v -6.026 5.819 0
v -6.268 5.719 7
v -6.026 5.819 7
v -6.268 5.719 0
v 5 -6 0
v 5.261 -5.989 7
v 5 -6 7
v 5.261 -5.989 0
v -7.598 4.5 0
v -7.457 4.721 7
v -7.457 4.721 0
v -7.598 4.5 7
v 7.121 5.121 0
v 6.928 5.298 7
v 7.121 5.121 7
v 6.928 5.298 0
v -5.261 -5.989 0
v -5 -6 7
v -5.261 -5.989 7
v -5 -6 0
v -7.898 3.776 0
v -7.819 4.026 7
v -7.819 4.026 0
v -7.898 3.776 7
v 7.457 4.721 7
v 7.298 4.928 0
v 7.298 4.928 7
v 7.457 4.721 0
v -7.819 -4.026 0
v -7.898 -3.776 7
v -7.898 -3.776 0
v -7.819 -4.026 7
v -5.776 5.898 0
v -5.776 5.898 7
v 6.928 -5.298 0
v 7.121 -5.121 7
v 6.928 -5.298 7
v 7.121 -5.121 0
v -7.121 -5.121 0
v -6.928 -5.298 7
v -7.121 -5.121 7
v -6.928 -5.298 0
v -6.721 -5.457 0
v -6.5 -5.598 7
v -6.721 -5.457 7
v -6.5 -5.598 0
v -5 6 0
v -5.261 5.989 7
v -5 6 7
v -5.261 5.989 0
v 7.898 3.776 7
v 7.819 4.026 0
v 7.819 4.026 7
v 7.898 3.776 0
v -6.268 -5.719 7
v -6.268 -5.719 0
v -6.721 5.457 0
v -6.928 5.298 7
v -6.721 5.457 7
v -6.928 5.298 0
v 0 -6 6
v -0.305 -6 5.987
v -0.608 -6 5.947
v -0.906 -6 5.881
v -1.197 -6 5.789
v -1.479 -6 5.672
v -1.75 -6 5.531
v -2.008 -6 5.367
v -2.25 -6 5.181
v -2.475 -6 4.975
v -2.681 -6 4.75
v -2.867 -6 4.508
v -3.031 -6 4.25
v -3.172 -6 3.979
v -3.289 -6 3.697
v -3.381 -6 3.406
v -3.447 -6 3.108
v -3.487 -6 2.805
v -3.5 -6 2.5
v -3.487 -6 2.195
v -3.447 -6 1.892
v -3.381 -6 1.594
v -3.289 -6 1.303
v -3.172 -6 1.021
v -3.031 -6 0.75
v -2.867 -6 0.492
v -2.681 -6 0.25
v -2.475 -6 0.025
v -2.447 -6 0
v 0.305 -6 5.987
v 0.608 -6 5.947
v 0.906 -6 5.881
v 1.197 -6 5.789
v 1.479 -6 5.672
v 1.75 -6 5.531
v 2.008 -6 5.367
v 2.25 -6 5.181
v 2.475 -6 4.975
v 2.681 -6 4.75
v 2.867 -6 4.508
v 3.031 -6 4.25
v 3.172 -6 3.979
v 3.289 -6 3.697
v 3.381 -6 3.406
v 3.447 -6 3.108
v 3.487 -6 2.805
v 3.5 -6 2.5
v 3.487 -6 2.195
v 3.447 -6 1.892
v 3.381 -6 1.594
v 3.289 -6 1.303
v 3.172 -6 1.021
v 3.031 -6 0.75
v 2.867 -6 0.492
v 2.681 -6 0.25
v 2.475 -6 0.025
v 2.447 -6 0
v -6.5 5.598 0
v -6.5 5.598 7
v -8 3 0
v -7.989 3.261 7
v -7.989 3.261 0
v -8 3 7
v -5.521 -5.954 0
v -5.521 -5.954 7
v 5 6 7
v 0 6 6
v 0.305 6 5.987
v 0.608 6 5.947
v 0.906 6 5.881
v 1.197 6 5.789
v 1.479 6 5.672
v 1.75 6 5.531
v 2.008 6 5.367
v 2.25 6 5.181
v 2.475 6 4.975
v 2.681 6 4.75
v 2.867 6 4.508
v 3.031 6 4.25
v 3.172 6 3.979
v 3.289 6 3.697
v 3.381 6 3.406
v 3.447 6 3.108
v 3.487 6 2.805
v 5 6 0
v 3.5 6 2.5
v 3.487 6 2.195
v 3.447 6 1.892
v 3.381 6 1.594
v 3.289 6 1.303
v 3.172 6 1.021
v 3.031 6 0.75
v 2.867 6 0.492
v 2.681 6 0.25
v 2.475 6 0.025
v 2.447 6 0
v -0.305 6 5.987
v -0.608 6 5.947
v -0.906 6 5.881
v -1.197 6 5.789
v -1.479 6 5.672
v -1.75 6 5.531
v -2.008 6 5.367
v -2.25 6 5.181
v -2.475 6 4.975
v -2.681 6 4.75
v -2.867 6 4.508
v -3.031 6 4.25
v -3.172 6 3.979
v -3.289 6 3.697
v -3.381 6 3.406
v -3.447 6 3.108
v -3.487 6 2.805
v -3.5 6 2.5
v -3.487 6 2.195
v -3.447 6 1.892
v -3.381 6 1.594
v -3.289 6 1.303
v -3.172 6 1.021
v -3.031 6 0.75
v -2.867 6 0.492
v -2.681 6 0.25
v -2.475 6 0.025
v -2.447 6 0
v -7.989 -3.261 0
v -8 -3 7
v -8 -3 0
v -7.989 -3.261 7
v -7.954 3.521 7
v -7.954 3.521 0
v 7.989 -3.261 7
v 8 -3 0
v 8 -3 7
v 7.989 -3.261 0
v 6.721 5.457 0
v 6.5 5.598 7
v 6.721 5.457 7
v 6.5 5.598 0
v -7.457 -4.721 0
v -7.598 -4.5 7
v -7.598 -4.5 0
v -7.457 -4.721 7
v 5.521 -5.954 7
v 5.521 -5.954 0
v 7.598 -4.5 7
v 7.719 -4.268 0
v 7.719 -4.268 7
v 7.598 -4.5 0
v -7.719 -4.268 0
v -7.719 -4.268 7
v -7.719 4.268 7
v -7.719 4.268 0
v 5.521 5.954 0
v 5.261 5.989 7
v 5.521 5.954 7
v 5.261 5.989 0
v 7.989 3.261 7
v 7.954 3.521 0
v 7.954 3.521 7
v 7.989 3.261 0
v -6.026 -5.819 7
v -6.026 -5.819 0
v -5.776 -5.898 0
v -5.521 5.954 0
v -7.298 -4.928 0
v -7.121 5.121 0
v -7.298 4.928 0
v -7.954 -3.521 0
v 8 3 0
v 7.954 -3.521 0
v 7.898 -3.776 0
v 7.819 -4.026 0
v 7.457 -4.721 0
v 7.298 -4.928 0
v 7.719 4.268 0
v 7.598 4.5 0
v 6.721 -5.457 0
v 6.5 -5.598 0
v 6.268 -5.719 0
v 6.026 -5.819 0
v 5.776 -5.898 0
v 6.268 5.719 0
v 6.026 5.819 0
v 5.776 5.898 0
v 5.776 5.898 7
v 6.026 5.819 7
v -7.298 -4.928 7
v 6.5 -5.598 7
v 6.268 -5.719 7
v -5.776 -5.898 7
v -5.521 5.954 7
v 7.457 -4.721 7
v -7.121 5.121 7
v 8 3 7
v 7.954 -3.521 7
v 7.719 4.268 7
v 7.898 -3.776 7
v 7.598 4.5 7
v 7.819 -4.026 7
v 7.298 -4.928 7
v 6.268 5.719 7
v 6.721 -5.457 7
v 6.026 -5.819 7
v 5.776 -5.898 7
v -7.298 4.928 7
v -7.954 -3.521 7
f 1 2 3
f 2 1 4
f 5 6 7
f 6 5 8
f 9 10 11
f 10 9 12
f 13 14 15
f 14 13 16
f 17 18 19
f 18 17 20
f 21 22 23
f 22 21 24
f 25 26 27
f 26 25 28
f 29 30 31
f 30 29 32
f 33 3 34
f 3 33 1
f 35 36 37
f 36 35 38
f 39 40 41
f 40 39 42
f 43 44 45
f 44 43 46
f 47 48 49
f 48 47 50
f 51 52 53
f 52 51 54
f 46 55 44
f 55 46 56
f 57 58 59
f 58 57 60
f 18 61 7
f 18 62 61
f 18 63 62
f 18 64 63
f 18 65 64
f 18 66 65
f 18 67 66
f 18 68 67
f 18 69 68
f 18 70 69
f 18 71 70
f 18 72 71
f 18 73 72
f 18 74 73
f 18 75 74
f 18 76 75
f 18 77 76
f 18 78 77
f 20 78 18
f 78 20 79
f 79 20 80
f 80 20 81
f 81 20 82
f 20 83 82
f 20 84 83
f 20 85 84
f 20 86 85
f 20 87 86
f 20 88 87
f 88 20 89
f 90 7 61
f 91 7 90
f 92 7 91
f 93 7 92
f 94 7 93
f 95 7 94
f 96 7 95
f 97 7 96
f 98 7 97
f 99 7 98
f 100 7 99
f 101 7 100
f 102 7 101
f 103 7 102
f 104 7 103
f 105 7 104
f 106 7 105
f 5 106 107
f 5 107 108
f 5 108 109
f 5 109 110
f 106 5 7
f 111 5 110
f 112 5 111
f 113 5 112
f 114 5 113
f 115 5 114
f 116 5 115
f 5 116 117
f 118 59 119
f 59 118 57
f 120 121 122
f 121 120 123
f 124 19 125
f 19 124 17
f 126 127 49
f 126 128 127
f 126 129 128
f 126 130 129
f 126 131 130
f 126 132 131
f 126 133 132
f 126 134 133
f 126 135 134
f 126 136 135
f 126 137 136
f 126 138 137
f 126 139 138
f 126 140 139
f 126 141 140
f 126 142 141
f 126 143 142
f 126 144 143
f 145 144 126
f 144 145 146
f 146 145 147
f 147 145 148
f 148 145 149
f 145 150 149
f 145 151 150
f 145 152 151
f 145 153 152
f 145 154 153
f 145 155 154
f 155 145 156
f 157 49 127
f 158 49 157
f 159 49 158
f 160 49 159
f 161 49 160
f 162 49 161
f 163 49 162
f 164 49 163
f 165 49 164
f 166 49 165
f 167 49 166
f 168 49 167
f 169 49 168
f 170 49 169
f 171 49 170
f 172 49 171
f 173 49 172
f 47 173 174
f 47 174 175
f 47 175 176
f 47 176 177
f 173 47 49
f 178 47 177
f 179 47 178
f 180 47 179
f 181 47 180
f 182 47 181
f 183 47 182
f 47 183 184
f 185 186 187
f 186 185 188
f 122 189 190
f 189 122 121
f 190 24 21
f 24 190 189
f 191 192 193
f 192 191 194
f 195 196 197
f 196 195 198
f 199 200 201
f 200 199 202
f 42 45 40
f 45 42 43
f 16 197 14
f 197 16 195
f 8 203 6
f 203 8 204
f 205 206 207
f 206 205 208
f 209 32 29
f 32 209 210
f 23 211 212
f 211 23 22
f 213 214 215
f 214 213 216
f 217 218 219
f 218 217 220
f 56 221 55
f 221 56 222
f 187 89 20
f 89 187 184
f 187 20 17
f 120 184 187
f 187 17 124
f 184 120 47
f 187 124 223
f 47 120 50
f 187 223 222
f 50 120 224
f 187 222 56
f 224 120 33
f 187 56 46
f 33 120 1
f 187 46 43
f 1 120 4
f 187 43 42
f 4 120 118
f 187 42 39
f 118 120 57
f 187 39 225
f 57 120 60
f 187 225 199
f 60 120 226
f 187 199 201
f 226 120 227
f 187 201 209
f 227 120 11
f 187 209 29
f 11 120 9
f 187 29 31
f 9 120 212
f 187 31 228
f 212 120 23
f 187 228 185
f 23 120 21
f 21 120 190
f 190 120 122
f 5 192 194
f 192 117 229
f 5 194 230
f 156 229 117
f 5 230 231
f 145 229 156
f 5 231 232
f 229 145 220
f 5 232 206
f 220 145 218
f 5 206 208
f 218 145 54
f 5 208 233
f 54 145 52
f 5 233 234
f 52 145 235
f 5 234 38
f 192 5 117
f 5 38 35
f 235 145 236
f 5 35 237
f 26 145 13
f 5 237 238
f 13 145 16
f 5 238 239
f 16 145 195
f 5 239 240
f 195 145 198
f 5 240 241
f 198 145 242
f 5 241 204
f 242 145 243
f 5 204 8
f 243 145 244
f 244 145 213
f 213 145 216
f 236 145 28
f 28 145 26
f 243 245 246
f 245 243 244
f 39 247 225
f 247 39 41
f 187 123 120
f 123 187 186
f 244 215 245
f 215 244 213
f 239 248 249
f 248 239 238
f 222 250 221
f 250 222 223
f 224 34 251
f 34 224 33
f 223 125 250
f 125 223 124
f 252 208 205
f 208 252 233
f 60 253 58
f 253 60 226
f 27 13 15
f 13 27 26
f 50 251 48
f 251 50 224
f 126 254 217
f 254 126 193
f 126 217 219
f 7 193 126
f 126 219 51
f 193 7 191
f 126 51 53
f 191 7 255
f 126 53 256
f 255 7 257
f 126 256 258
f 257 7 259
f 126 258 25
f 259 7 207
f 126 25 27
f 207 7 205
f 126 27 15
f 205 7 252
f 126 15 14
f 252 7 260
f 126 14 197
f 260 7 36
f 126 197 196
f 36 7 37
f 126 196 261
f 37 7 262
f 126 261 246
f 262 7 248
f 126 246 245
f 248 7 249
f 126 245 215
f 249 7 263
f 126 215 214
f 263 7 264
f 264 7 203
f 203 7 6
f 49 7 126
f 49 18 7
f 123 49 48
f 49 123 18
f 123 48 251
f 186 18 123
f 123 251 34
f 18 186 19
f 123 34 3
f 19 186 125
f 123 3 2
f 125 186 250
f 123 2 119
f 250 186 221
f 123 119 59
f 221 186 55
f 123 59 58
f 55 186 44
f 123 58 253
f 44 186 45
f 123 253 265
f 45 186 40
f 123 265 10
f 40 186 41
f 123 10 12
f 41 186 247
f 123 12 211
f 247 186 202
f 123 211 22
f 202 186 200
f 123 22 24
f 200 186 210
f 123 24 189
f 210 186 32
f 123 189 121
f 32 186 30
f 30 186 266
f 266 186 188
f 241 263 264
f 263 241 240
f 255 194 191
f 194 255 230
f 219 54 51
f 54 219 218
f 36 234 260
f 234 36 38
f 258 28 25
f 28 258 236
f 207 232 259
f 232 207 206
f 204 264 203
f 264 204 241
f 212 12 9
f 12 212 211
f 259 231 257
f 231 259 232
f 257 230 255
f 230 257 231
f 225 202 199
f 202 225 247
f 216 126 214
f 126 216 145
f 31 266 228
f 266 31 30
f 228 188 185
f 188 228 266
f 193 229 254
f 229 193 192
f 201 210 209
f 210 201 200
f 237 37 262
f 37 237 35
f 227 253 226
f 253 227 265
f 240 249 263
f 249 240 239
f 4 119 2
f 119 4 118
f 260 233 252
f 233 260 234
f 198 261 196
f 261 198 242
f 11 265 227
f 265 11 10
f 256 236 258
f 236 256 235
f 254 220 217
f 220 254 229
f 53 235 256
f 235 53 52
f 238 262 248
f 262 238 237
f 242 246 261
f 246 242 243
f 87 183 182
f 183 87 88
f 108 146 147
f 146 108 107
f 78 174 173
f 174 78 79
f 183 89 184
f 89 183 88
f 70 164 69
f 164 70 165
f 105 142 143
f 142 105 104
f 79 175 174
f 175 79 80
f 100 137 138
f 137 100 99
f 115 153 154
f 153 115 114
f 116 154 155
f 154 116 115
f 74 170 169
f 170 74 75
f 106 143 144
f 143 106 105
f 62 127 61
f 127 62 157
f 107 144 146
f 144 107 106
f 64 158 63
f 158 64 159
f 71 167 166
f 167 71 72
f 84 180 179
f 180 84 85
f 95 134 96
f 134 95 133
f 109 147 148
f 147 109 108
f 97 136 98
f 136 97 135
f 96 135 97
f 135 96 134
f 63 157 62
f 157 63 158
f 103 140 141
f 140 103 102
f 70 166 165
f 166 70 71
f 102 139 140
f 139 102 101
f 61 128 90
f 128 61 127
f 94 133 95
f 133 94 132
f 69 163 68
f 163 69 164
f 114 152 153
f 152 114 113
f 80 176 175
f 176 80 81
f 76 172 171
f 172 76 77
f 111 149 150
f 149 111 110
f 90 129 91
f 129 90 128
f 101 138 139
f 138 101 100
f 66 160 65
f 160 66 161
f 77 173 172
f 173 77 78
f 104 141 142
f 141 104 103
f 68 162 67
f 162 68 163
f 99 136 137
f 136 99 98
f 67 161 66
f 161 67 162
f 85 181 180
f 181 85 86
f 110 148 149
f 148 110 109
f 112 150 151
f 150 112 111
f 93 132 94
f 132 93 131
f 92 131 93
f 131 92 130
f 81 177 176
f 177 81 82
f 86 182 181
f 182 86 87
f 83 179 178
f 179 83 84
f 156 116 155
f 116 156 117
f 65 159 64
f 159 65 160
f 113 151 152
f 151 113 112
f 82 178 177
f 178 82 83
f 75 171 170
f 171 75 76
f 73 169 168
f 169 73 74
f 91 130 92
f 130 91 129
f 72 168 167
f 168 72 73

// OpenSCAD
// file: woli_config.scad
// ============================================================
// WOLI V1.1 AUDITED FINAL — MASTER PARAMETERS
// Units: mm
// ============================================================

$fn = 72;

// ---------- GLOBAL ----------
fit_clearance = 0.40;
wall = 3.0;
floor_t = 5.0;
cover_t = 2.8;
shell_r = 10.0;

m3_clear = 3.4;
m3_pilot_d = 2.8;
m3_pilot_depth = 4.2;

tie_slot_w = 3.8;
tie_slot_l = 18;

// ---------- BODY ----------
body_w = 170;
body_l = 90;
chassis_h = 31;
top_h = 34;

top_upper_w = 162;
top_upper_l = 80;
top_upper_r = 9;

// ---------- N20 DRIVE ----------
wheel_d = 43;
wheel_w = 17.5;

n20_x = 12;
n20_y = 33;
n20_z = 10;

n20_bracket_x = 25;
n20_bracket_y = 8.5;
n20_bracket_z = 11.5;
n20_bracket_hole_cc = 17;      // approx; slots absorb error

wheel_axis_ground_z = wheel_d/2; // reference only; actual chassis ground plane requires hardware check
wheel_opening_l = 25;            // side wheel cutout depth (Y), mm
motor_y = -body_l/2 + body_l/3;  // wheel center: 1/3 body depth in from front (-Y)
motor_slot_len = 8;
motor_bracket_zone_x = body_w/2 - 18;

// ---------- BALL CASTER ----------
caster_w = 22;
caster_l = 17;
caster_h = 15;
caster_ball_d_visual_ref = 11.5; // photo-only reference; not used for fit
caster_dock_y = body_l/2 - 21;

caster_body_clear = 0.7;
caster_retainer_t = 3.0;
caster_retainer_screw_cc = 27;

caster_mount_x = 15;
caster_mount_y = 12;
caster_floor_open = 18.5;

// ---------- MAIN PCB ----------
pcb_w = 50;
pcb_l = 70;
pcb_stack_h = 15;

pcb_tray_w = 56;
pcb_tray_l = 76;
pcb_mount_cc_x = 44;
pcb_mount_cc_y = 64;

// ---------- MG90S ----------
servo_a = 32.4;
servo_b = 32.5;
servo_c = 12;
servo_fit = 0.7;

// ---------- LIMIT SWITCH ----------
limit_w = 21;
limit_l = 23;
limit_h = 6;

// ---------- VL53L0X ----------
tof_w = 10.7;
tof_l = 25;
tof_h = 11.5;
tof_rail_clear = 0.7;

tof_bezel_w = 34;
tof_bezel_h = 19;

// ---------- PHONE HOLDER / NECK ----------
phone_ball_d = 18.0;            // physical socket fit still required
neck_h = 30;
neck_base_w = 54;
neck_base_l = 42;
neck_base_h = 5;
neck_hole_x = 38;
neck_hole_y = 26;

neck_recess_w = 62;
neck_recess_l = 50;
neck_recess_d = 1.2;

neck_pilot_d = 2.8;
neck_pilot_depth = 7.0;

// reference phone clearance envelope only
phone_ref_w = 165;
phone_ref_h = 82;
phone_ref_t = 12;

// ---------- KLIFE PD-Q2 BATTERY ----------
battery_w = 68;
battery_l = 143;
battery_h = 11;
battery_mass_g = 205;

battery_fit_clear = 0.8;
battery_tray_w = 84;
battery_tray_l = 146;
battery_tray_t = 2.4;
battery_rail_t = 2.5;
battery_rail_h = 5.5;
battery_center_y = -18;

battery_tray_mount_x = 39;
battery_tray_mount_y = 55;

// ---------- UPPER ELECTRONICS DECK ----------
bridge_w = 122;
bridge_l = 94;
bridge_t = 3.0;
bridge_leg_h = 20;
bridge_leg_x = 56;
bridge_leg_y = 36;

module_boss_h = 4.5;
module_boss_d = 8.0;
module_pilot_d = 2.8;

pcb_deck_cx = -25;
pcb_deck_cy = 0;

tb_deck_cx = 34;
tb_deck_cy = 17;

usbc_deck_cx = 36;
usbc_deck_cy = -24;

// ---------- TB6612FNG HW-166 ----------
tb6612_w = 26;
tb6612_l = 26;
tb6612_clear = 0.6;

// total installed height is intentionally not hard-coded

// ---------- USB-C BREAKOUT ----------
usbc_board_w = 12;
usbc_board_l = 15;
usbc_connector_h = 4.2;
usbc_clear = 0.6;

// ---------- TOP COVER INTERFACE ----------
cover_skirt_depth = 4.0;
cover_skirt_clear = 0.8;
cover_skirt_t = 2.5;

cover_side_screw_y = 55 * body_l / 190;
cover_side_screw_z = -2.5;

rear_service_w = 42;
rear_service_h = 14;
rear_hatch_screw_x = 19;
rear_hatch_center_z = 10;

// ---------- CABLE MANAGEMENT ----------
cable_bridge_w = 24;
cable_bridge_l = 14;
cable_bridge_h = 8;
cable_bridge_channel = 8;

// ---------- SERVO LOCK FRAMEWORK ----------
lock_angle_deg = 90;
unlock_angle_deg = 10;

lock_plate_d = 28;
lock_arm_w = 10;
lock_arm_t = 4.0;
lock_reach = 22;
lock_tip_d = 10;

horn_center_clear_d = 7.0;
horn_slot_d = 2.4;              // physical stock-horn check required
horn_slot_len = 8.0;
horn_slot_radius = 8.0;

lock_pad_t = 2.0;
lock_pad_d = 11.0;
// file: woli_lib.scad
include <woli_config.scad>;

module rr2d(w,l,r){
    offset(r=r) square([w-2*r,l-2*r], center=true);
}

module rplate(w,l,h,r){
    linear_extrude(height=h) rr2d(w,l,r);
}

module rshell(w,l,h,r,t,bottom){
    difference(){
        rplate(w,l,h,r);
        translate([0,0,bottom])
            rplate(w-2*t,l-2*t,h,r-t);
    }
}

module slot2d(len,d){
    hull(){
        translate([-len/2,0]) circle(d=d);
        translate([ len/2,0]) circle(d=d);
    }
}

module slot3d(len,d,h){
    linear_extrude(height=h) slot2d(len,d);
}

module tie_slot(h=5){
    rplate(tie_slot_w,tie_slot_l,h,1.2);
}

module body_screw_pattern(h=20){
    for(x=[-screw_x,screw_x])
        for(y=[-screw_y,screw_y])
            translate([x,y,-1])
                cylinder(h=h,d=m3_clear);
}

module body_bosses(h=20){
    for(x=[-screw_x,screw_x])
        for(y=[-screw_y,screw_y])
            translate([x,y,0])
                cylinder(h=h,d=m3_boss_d);
}


// Closed-top shell for removable upper cover.
// Leaves the underside open and preserves a roof thickness.
module top_shell(w,l,h,r,t){
    difference(){
        rplate(w,l,h,r);
        translate([0,0,-0.1])
            rplate(w-2*t,l-2*t,h-t+0.1,r-t);
    }
}


// Tapered rounded solid built from two rounded plates.
// Useful for product-like enclosure shoulders.
module tapered_rounded_solid(w0,l0,w1,l1,h,r0,r1){
    hull(){
        rplate(w0,l0,0.8,r0);
        translate([0,0,h-0.8])
            rplate(w1,l1,0.8,r1);
    }
}

// Open-bottom tapered cover with closed roof.
module tapered_top_shell(w0,l0,w1,l1,h,r0,r1,t){
    difference(){
        tapered_rounded_solid(w0,l0,w1,l1,h,r0,r1);
        translate([0,0,-0.1])
            tapered_rounded_solid(
                w0-2*t,l0-2*t,
                w1-2*t,l1-2*t,
                h-t+0.1,
                max(r0-t,1),max(r1-t,1)
            );
    }
}
// main file
include <woli_lib.scad>;

// 10 REUSABLE CABLE CLIP V0.2
// Small printable clip for motor/sensor wire routing.

clip_w=16;
clip_l=12;
clip_h=7;
channel_w=7;

difference(){
    rplate(clip_w,clip_l,clip_h,3);

    translate([0,0,2.5])
        rotate([90,0,0])
            cylinder(h=clip_l+2,d=channel_w,center=true);

    translate([0,0,-0.1])
        cylinder(h=2.6,d=m3_clear);
}
